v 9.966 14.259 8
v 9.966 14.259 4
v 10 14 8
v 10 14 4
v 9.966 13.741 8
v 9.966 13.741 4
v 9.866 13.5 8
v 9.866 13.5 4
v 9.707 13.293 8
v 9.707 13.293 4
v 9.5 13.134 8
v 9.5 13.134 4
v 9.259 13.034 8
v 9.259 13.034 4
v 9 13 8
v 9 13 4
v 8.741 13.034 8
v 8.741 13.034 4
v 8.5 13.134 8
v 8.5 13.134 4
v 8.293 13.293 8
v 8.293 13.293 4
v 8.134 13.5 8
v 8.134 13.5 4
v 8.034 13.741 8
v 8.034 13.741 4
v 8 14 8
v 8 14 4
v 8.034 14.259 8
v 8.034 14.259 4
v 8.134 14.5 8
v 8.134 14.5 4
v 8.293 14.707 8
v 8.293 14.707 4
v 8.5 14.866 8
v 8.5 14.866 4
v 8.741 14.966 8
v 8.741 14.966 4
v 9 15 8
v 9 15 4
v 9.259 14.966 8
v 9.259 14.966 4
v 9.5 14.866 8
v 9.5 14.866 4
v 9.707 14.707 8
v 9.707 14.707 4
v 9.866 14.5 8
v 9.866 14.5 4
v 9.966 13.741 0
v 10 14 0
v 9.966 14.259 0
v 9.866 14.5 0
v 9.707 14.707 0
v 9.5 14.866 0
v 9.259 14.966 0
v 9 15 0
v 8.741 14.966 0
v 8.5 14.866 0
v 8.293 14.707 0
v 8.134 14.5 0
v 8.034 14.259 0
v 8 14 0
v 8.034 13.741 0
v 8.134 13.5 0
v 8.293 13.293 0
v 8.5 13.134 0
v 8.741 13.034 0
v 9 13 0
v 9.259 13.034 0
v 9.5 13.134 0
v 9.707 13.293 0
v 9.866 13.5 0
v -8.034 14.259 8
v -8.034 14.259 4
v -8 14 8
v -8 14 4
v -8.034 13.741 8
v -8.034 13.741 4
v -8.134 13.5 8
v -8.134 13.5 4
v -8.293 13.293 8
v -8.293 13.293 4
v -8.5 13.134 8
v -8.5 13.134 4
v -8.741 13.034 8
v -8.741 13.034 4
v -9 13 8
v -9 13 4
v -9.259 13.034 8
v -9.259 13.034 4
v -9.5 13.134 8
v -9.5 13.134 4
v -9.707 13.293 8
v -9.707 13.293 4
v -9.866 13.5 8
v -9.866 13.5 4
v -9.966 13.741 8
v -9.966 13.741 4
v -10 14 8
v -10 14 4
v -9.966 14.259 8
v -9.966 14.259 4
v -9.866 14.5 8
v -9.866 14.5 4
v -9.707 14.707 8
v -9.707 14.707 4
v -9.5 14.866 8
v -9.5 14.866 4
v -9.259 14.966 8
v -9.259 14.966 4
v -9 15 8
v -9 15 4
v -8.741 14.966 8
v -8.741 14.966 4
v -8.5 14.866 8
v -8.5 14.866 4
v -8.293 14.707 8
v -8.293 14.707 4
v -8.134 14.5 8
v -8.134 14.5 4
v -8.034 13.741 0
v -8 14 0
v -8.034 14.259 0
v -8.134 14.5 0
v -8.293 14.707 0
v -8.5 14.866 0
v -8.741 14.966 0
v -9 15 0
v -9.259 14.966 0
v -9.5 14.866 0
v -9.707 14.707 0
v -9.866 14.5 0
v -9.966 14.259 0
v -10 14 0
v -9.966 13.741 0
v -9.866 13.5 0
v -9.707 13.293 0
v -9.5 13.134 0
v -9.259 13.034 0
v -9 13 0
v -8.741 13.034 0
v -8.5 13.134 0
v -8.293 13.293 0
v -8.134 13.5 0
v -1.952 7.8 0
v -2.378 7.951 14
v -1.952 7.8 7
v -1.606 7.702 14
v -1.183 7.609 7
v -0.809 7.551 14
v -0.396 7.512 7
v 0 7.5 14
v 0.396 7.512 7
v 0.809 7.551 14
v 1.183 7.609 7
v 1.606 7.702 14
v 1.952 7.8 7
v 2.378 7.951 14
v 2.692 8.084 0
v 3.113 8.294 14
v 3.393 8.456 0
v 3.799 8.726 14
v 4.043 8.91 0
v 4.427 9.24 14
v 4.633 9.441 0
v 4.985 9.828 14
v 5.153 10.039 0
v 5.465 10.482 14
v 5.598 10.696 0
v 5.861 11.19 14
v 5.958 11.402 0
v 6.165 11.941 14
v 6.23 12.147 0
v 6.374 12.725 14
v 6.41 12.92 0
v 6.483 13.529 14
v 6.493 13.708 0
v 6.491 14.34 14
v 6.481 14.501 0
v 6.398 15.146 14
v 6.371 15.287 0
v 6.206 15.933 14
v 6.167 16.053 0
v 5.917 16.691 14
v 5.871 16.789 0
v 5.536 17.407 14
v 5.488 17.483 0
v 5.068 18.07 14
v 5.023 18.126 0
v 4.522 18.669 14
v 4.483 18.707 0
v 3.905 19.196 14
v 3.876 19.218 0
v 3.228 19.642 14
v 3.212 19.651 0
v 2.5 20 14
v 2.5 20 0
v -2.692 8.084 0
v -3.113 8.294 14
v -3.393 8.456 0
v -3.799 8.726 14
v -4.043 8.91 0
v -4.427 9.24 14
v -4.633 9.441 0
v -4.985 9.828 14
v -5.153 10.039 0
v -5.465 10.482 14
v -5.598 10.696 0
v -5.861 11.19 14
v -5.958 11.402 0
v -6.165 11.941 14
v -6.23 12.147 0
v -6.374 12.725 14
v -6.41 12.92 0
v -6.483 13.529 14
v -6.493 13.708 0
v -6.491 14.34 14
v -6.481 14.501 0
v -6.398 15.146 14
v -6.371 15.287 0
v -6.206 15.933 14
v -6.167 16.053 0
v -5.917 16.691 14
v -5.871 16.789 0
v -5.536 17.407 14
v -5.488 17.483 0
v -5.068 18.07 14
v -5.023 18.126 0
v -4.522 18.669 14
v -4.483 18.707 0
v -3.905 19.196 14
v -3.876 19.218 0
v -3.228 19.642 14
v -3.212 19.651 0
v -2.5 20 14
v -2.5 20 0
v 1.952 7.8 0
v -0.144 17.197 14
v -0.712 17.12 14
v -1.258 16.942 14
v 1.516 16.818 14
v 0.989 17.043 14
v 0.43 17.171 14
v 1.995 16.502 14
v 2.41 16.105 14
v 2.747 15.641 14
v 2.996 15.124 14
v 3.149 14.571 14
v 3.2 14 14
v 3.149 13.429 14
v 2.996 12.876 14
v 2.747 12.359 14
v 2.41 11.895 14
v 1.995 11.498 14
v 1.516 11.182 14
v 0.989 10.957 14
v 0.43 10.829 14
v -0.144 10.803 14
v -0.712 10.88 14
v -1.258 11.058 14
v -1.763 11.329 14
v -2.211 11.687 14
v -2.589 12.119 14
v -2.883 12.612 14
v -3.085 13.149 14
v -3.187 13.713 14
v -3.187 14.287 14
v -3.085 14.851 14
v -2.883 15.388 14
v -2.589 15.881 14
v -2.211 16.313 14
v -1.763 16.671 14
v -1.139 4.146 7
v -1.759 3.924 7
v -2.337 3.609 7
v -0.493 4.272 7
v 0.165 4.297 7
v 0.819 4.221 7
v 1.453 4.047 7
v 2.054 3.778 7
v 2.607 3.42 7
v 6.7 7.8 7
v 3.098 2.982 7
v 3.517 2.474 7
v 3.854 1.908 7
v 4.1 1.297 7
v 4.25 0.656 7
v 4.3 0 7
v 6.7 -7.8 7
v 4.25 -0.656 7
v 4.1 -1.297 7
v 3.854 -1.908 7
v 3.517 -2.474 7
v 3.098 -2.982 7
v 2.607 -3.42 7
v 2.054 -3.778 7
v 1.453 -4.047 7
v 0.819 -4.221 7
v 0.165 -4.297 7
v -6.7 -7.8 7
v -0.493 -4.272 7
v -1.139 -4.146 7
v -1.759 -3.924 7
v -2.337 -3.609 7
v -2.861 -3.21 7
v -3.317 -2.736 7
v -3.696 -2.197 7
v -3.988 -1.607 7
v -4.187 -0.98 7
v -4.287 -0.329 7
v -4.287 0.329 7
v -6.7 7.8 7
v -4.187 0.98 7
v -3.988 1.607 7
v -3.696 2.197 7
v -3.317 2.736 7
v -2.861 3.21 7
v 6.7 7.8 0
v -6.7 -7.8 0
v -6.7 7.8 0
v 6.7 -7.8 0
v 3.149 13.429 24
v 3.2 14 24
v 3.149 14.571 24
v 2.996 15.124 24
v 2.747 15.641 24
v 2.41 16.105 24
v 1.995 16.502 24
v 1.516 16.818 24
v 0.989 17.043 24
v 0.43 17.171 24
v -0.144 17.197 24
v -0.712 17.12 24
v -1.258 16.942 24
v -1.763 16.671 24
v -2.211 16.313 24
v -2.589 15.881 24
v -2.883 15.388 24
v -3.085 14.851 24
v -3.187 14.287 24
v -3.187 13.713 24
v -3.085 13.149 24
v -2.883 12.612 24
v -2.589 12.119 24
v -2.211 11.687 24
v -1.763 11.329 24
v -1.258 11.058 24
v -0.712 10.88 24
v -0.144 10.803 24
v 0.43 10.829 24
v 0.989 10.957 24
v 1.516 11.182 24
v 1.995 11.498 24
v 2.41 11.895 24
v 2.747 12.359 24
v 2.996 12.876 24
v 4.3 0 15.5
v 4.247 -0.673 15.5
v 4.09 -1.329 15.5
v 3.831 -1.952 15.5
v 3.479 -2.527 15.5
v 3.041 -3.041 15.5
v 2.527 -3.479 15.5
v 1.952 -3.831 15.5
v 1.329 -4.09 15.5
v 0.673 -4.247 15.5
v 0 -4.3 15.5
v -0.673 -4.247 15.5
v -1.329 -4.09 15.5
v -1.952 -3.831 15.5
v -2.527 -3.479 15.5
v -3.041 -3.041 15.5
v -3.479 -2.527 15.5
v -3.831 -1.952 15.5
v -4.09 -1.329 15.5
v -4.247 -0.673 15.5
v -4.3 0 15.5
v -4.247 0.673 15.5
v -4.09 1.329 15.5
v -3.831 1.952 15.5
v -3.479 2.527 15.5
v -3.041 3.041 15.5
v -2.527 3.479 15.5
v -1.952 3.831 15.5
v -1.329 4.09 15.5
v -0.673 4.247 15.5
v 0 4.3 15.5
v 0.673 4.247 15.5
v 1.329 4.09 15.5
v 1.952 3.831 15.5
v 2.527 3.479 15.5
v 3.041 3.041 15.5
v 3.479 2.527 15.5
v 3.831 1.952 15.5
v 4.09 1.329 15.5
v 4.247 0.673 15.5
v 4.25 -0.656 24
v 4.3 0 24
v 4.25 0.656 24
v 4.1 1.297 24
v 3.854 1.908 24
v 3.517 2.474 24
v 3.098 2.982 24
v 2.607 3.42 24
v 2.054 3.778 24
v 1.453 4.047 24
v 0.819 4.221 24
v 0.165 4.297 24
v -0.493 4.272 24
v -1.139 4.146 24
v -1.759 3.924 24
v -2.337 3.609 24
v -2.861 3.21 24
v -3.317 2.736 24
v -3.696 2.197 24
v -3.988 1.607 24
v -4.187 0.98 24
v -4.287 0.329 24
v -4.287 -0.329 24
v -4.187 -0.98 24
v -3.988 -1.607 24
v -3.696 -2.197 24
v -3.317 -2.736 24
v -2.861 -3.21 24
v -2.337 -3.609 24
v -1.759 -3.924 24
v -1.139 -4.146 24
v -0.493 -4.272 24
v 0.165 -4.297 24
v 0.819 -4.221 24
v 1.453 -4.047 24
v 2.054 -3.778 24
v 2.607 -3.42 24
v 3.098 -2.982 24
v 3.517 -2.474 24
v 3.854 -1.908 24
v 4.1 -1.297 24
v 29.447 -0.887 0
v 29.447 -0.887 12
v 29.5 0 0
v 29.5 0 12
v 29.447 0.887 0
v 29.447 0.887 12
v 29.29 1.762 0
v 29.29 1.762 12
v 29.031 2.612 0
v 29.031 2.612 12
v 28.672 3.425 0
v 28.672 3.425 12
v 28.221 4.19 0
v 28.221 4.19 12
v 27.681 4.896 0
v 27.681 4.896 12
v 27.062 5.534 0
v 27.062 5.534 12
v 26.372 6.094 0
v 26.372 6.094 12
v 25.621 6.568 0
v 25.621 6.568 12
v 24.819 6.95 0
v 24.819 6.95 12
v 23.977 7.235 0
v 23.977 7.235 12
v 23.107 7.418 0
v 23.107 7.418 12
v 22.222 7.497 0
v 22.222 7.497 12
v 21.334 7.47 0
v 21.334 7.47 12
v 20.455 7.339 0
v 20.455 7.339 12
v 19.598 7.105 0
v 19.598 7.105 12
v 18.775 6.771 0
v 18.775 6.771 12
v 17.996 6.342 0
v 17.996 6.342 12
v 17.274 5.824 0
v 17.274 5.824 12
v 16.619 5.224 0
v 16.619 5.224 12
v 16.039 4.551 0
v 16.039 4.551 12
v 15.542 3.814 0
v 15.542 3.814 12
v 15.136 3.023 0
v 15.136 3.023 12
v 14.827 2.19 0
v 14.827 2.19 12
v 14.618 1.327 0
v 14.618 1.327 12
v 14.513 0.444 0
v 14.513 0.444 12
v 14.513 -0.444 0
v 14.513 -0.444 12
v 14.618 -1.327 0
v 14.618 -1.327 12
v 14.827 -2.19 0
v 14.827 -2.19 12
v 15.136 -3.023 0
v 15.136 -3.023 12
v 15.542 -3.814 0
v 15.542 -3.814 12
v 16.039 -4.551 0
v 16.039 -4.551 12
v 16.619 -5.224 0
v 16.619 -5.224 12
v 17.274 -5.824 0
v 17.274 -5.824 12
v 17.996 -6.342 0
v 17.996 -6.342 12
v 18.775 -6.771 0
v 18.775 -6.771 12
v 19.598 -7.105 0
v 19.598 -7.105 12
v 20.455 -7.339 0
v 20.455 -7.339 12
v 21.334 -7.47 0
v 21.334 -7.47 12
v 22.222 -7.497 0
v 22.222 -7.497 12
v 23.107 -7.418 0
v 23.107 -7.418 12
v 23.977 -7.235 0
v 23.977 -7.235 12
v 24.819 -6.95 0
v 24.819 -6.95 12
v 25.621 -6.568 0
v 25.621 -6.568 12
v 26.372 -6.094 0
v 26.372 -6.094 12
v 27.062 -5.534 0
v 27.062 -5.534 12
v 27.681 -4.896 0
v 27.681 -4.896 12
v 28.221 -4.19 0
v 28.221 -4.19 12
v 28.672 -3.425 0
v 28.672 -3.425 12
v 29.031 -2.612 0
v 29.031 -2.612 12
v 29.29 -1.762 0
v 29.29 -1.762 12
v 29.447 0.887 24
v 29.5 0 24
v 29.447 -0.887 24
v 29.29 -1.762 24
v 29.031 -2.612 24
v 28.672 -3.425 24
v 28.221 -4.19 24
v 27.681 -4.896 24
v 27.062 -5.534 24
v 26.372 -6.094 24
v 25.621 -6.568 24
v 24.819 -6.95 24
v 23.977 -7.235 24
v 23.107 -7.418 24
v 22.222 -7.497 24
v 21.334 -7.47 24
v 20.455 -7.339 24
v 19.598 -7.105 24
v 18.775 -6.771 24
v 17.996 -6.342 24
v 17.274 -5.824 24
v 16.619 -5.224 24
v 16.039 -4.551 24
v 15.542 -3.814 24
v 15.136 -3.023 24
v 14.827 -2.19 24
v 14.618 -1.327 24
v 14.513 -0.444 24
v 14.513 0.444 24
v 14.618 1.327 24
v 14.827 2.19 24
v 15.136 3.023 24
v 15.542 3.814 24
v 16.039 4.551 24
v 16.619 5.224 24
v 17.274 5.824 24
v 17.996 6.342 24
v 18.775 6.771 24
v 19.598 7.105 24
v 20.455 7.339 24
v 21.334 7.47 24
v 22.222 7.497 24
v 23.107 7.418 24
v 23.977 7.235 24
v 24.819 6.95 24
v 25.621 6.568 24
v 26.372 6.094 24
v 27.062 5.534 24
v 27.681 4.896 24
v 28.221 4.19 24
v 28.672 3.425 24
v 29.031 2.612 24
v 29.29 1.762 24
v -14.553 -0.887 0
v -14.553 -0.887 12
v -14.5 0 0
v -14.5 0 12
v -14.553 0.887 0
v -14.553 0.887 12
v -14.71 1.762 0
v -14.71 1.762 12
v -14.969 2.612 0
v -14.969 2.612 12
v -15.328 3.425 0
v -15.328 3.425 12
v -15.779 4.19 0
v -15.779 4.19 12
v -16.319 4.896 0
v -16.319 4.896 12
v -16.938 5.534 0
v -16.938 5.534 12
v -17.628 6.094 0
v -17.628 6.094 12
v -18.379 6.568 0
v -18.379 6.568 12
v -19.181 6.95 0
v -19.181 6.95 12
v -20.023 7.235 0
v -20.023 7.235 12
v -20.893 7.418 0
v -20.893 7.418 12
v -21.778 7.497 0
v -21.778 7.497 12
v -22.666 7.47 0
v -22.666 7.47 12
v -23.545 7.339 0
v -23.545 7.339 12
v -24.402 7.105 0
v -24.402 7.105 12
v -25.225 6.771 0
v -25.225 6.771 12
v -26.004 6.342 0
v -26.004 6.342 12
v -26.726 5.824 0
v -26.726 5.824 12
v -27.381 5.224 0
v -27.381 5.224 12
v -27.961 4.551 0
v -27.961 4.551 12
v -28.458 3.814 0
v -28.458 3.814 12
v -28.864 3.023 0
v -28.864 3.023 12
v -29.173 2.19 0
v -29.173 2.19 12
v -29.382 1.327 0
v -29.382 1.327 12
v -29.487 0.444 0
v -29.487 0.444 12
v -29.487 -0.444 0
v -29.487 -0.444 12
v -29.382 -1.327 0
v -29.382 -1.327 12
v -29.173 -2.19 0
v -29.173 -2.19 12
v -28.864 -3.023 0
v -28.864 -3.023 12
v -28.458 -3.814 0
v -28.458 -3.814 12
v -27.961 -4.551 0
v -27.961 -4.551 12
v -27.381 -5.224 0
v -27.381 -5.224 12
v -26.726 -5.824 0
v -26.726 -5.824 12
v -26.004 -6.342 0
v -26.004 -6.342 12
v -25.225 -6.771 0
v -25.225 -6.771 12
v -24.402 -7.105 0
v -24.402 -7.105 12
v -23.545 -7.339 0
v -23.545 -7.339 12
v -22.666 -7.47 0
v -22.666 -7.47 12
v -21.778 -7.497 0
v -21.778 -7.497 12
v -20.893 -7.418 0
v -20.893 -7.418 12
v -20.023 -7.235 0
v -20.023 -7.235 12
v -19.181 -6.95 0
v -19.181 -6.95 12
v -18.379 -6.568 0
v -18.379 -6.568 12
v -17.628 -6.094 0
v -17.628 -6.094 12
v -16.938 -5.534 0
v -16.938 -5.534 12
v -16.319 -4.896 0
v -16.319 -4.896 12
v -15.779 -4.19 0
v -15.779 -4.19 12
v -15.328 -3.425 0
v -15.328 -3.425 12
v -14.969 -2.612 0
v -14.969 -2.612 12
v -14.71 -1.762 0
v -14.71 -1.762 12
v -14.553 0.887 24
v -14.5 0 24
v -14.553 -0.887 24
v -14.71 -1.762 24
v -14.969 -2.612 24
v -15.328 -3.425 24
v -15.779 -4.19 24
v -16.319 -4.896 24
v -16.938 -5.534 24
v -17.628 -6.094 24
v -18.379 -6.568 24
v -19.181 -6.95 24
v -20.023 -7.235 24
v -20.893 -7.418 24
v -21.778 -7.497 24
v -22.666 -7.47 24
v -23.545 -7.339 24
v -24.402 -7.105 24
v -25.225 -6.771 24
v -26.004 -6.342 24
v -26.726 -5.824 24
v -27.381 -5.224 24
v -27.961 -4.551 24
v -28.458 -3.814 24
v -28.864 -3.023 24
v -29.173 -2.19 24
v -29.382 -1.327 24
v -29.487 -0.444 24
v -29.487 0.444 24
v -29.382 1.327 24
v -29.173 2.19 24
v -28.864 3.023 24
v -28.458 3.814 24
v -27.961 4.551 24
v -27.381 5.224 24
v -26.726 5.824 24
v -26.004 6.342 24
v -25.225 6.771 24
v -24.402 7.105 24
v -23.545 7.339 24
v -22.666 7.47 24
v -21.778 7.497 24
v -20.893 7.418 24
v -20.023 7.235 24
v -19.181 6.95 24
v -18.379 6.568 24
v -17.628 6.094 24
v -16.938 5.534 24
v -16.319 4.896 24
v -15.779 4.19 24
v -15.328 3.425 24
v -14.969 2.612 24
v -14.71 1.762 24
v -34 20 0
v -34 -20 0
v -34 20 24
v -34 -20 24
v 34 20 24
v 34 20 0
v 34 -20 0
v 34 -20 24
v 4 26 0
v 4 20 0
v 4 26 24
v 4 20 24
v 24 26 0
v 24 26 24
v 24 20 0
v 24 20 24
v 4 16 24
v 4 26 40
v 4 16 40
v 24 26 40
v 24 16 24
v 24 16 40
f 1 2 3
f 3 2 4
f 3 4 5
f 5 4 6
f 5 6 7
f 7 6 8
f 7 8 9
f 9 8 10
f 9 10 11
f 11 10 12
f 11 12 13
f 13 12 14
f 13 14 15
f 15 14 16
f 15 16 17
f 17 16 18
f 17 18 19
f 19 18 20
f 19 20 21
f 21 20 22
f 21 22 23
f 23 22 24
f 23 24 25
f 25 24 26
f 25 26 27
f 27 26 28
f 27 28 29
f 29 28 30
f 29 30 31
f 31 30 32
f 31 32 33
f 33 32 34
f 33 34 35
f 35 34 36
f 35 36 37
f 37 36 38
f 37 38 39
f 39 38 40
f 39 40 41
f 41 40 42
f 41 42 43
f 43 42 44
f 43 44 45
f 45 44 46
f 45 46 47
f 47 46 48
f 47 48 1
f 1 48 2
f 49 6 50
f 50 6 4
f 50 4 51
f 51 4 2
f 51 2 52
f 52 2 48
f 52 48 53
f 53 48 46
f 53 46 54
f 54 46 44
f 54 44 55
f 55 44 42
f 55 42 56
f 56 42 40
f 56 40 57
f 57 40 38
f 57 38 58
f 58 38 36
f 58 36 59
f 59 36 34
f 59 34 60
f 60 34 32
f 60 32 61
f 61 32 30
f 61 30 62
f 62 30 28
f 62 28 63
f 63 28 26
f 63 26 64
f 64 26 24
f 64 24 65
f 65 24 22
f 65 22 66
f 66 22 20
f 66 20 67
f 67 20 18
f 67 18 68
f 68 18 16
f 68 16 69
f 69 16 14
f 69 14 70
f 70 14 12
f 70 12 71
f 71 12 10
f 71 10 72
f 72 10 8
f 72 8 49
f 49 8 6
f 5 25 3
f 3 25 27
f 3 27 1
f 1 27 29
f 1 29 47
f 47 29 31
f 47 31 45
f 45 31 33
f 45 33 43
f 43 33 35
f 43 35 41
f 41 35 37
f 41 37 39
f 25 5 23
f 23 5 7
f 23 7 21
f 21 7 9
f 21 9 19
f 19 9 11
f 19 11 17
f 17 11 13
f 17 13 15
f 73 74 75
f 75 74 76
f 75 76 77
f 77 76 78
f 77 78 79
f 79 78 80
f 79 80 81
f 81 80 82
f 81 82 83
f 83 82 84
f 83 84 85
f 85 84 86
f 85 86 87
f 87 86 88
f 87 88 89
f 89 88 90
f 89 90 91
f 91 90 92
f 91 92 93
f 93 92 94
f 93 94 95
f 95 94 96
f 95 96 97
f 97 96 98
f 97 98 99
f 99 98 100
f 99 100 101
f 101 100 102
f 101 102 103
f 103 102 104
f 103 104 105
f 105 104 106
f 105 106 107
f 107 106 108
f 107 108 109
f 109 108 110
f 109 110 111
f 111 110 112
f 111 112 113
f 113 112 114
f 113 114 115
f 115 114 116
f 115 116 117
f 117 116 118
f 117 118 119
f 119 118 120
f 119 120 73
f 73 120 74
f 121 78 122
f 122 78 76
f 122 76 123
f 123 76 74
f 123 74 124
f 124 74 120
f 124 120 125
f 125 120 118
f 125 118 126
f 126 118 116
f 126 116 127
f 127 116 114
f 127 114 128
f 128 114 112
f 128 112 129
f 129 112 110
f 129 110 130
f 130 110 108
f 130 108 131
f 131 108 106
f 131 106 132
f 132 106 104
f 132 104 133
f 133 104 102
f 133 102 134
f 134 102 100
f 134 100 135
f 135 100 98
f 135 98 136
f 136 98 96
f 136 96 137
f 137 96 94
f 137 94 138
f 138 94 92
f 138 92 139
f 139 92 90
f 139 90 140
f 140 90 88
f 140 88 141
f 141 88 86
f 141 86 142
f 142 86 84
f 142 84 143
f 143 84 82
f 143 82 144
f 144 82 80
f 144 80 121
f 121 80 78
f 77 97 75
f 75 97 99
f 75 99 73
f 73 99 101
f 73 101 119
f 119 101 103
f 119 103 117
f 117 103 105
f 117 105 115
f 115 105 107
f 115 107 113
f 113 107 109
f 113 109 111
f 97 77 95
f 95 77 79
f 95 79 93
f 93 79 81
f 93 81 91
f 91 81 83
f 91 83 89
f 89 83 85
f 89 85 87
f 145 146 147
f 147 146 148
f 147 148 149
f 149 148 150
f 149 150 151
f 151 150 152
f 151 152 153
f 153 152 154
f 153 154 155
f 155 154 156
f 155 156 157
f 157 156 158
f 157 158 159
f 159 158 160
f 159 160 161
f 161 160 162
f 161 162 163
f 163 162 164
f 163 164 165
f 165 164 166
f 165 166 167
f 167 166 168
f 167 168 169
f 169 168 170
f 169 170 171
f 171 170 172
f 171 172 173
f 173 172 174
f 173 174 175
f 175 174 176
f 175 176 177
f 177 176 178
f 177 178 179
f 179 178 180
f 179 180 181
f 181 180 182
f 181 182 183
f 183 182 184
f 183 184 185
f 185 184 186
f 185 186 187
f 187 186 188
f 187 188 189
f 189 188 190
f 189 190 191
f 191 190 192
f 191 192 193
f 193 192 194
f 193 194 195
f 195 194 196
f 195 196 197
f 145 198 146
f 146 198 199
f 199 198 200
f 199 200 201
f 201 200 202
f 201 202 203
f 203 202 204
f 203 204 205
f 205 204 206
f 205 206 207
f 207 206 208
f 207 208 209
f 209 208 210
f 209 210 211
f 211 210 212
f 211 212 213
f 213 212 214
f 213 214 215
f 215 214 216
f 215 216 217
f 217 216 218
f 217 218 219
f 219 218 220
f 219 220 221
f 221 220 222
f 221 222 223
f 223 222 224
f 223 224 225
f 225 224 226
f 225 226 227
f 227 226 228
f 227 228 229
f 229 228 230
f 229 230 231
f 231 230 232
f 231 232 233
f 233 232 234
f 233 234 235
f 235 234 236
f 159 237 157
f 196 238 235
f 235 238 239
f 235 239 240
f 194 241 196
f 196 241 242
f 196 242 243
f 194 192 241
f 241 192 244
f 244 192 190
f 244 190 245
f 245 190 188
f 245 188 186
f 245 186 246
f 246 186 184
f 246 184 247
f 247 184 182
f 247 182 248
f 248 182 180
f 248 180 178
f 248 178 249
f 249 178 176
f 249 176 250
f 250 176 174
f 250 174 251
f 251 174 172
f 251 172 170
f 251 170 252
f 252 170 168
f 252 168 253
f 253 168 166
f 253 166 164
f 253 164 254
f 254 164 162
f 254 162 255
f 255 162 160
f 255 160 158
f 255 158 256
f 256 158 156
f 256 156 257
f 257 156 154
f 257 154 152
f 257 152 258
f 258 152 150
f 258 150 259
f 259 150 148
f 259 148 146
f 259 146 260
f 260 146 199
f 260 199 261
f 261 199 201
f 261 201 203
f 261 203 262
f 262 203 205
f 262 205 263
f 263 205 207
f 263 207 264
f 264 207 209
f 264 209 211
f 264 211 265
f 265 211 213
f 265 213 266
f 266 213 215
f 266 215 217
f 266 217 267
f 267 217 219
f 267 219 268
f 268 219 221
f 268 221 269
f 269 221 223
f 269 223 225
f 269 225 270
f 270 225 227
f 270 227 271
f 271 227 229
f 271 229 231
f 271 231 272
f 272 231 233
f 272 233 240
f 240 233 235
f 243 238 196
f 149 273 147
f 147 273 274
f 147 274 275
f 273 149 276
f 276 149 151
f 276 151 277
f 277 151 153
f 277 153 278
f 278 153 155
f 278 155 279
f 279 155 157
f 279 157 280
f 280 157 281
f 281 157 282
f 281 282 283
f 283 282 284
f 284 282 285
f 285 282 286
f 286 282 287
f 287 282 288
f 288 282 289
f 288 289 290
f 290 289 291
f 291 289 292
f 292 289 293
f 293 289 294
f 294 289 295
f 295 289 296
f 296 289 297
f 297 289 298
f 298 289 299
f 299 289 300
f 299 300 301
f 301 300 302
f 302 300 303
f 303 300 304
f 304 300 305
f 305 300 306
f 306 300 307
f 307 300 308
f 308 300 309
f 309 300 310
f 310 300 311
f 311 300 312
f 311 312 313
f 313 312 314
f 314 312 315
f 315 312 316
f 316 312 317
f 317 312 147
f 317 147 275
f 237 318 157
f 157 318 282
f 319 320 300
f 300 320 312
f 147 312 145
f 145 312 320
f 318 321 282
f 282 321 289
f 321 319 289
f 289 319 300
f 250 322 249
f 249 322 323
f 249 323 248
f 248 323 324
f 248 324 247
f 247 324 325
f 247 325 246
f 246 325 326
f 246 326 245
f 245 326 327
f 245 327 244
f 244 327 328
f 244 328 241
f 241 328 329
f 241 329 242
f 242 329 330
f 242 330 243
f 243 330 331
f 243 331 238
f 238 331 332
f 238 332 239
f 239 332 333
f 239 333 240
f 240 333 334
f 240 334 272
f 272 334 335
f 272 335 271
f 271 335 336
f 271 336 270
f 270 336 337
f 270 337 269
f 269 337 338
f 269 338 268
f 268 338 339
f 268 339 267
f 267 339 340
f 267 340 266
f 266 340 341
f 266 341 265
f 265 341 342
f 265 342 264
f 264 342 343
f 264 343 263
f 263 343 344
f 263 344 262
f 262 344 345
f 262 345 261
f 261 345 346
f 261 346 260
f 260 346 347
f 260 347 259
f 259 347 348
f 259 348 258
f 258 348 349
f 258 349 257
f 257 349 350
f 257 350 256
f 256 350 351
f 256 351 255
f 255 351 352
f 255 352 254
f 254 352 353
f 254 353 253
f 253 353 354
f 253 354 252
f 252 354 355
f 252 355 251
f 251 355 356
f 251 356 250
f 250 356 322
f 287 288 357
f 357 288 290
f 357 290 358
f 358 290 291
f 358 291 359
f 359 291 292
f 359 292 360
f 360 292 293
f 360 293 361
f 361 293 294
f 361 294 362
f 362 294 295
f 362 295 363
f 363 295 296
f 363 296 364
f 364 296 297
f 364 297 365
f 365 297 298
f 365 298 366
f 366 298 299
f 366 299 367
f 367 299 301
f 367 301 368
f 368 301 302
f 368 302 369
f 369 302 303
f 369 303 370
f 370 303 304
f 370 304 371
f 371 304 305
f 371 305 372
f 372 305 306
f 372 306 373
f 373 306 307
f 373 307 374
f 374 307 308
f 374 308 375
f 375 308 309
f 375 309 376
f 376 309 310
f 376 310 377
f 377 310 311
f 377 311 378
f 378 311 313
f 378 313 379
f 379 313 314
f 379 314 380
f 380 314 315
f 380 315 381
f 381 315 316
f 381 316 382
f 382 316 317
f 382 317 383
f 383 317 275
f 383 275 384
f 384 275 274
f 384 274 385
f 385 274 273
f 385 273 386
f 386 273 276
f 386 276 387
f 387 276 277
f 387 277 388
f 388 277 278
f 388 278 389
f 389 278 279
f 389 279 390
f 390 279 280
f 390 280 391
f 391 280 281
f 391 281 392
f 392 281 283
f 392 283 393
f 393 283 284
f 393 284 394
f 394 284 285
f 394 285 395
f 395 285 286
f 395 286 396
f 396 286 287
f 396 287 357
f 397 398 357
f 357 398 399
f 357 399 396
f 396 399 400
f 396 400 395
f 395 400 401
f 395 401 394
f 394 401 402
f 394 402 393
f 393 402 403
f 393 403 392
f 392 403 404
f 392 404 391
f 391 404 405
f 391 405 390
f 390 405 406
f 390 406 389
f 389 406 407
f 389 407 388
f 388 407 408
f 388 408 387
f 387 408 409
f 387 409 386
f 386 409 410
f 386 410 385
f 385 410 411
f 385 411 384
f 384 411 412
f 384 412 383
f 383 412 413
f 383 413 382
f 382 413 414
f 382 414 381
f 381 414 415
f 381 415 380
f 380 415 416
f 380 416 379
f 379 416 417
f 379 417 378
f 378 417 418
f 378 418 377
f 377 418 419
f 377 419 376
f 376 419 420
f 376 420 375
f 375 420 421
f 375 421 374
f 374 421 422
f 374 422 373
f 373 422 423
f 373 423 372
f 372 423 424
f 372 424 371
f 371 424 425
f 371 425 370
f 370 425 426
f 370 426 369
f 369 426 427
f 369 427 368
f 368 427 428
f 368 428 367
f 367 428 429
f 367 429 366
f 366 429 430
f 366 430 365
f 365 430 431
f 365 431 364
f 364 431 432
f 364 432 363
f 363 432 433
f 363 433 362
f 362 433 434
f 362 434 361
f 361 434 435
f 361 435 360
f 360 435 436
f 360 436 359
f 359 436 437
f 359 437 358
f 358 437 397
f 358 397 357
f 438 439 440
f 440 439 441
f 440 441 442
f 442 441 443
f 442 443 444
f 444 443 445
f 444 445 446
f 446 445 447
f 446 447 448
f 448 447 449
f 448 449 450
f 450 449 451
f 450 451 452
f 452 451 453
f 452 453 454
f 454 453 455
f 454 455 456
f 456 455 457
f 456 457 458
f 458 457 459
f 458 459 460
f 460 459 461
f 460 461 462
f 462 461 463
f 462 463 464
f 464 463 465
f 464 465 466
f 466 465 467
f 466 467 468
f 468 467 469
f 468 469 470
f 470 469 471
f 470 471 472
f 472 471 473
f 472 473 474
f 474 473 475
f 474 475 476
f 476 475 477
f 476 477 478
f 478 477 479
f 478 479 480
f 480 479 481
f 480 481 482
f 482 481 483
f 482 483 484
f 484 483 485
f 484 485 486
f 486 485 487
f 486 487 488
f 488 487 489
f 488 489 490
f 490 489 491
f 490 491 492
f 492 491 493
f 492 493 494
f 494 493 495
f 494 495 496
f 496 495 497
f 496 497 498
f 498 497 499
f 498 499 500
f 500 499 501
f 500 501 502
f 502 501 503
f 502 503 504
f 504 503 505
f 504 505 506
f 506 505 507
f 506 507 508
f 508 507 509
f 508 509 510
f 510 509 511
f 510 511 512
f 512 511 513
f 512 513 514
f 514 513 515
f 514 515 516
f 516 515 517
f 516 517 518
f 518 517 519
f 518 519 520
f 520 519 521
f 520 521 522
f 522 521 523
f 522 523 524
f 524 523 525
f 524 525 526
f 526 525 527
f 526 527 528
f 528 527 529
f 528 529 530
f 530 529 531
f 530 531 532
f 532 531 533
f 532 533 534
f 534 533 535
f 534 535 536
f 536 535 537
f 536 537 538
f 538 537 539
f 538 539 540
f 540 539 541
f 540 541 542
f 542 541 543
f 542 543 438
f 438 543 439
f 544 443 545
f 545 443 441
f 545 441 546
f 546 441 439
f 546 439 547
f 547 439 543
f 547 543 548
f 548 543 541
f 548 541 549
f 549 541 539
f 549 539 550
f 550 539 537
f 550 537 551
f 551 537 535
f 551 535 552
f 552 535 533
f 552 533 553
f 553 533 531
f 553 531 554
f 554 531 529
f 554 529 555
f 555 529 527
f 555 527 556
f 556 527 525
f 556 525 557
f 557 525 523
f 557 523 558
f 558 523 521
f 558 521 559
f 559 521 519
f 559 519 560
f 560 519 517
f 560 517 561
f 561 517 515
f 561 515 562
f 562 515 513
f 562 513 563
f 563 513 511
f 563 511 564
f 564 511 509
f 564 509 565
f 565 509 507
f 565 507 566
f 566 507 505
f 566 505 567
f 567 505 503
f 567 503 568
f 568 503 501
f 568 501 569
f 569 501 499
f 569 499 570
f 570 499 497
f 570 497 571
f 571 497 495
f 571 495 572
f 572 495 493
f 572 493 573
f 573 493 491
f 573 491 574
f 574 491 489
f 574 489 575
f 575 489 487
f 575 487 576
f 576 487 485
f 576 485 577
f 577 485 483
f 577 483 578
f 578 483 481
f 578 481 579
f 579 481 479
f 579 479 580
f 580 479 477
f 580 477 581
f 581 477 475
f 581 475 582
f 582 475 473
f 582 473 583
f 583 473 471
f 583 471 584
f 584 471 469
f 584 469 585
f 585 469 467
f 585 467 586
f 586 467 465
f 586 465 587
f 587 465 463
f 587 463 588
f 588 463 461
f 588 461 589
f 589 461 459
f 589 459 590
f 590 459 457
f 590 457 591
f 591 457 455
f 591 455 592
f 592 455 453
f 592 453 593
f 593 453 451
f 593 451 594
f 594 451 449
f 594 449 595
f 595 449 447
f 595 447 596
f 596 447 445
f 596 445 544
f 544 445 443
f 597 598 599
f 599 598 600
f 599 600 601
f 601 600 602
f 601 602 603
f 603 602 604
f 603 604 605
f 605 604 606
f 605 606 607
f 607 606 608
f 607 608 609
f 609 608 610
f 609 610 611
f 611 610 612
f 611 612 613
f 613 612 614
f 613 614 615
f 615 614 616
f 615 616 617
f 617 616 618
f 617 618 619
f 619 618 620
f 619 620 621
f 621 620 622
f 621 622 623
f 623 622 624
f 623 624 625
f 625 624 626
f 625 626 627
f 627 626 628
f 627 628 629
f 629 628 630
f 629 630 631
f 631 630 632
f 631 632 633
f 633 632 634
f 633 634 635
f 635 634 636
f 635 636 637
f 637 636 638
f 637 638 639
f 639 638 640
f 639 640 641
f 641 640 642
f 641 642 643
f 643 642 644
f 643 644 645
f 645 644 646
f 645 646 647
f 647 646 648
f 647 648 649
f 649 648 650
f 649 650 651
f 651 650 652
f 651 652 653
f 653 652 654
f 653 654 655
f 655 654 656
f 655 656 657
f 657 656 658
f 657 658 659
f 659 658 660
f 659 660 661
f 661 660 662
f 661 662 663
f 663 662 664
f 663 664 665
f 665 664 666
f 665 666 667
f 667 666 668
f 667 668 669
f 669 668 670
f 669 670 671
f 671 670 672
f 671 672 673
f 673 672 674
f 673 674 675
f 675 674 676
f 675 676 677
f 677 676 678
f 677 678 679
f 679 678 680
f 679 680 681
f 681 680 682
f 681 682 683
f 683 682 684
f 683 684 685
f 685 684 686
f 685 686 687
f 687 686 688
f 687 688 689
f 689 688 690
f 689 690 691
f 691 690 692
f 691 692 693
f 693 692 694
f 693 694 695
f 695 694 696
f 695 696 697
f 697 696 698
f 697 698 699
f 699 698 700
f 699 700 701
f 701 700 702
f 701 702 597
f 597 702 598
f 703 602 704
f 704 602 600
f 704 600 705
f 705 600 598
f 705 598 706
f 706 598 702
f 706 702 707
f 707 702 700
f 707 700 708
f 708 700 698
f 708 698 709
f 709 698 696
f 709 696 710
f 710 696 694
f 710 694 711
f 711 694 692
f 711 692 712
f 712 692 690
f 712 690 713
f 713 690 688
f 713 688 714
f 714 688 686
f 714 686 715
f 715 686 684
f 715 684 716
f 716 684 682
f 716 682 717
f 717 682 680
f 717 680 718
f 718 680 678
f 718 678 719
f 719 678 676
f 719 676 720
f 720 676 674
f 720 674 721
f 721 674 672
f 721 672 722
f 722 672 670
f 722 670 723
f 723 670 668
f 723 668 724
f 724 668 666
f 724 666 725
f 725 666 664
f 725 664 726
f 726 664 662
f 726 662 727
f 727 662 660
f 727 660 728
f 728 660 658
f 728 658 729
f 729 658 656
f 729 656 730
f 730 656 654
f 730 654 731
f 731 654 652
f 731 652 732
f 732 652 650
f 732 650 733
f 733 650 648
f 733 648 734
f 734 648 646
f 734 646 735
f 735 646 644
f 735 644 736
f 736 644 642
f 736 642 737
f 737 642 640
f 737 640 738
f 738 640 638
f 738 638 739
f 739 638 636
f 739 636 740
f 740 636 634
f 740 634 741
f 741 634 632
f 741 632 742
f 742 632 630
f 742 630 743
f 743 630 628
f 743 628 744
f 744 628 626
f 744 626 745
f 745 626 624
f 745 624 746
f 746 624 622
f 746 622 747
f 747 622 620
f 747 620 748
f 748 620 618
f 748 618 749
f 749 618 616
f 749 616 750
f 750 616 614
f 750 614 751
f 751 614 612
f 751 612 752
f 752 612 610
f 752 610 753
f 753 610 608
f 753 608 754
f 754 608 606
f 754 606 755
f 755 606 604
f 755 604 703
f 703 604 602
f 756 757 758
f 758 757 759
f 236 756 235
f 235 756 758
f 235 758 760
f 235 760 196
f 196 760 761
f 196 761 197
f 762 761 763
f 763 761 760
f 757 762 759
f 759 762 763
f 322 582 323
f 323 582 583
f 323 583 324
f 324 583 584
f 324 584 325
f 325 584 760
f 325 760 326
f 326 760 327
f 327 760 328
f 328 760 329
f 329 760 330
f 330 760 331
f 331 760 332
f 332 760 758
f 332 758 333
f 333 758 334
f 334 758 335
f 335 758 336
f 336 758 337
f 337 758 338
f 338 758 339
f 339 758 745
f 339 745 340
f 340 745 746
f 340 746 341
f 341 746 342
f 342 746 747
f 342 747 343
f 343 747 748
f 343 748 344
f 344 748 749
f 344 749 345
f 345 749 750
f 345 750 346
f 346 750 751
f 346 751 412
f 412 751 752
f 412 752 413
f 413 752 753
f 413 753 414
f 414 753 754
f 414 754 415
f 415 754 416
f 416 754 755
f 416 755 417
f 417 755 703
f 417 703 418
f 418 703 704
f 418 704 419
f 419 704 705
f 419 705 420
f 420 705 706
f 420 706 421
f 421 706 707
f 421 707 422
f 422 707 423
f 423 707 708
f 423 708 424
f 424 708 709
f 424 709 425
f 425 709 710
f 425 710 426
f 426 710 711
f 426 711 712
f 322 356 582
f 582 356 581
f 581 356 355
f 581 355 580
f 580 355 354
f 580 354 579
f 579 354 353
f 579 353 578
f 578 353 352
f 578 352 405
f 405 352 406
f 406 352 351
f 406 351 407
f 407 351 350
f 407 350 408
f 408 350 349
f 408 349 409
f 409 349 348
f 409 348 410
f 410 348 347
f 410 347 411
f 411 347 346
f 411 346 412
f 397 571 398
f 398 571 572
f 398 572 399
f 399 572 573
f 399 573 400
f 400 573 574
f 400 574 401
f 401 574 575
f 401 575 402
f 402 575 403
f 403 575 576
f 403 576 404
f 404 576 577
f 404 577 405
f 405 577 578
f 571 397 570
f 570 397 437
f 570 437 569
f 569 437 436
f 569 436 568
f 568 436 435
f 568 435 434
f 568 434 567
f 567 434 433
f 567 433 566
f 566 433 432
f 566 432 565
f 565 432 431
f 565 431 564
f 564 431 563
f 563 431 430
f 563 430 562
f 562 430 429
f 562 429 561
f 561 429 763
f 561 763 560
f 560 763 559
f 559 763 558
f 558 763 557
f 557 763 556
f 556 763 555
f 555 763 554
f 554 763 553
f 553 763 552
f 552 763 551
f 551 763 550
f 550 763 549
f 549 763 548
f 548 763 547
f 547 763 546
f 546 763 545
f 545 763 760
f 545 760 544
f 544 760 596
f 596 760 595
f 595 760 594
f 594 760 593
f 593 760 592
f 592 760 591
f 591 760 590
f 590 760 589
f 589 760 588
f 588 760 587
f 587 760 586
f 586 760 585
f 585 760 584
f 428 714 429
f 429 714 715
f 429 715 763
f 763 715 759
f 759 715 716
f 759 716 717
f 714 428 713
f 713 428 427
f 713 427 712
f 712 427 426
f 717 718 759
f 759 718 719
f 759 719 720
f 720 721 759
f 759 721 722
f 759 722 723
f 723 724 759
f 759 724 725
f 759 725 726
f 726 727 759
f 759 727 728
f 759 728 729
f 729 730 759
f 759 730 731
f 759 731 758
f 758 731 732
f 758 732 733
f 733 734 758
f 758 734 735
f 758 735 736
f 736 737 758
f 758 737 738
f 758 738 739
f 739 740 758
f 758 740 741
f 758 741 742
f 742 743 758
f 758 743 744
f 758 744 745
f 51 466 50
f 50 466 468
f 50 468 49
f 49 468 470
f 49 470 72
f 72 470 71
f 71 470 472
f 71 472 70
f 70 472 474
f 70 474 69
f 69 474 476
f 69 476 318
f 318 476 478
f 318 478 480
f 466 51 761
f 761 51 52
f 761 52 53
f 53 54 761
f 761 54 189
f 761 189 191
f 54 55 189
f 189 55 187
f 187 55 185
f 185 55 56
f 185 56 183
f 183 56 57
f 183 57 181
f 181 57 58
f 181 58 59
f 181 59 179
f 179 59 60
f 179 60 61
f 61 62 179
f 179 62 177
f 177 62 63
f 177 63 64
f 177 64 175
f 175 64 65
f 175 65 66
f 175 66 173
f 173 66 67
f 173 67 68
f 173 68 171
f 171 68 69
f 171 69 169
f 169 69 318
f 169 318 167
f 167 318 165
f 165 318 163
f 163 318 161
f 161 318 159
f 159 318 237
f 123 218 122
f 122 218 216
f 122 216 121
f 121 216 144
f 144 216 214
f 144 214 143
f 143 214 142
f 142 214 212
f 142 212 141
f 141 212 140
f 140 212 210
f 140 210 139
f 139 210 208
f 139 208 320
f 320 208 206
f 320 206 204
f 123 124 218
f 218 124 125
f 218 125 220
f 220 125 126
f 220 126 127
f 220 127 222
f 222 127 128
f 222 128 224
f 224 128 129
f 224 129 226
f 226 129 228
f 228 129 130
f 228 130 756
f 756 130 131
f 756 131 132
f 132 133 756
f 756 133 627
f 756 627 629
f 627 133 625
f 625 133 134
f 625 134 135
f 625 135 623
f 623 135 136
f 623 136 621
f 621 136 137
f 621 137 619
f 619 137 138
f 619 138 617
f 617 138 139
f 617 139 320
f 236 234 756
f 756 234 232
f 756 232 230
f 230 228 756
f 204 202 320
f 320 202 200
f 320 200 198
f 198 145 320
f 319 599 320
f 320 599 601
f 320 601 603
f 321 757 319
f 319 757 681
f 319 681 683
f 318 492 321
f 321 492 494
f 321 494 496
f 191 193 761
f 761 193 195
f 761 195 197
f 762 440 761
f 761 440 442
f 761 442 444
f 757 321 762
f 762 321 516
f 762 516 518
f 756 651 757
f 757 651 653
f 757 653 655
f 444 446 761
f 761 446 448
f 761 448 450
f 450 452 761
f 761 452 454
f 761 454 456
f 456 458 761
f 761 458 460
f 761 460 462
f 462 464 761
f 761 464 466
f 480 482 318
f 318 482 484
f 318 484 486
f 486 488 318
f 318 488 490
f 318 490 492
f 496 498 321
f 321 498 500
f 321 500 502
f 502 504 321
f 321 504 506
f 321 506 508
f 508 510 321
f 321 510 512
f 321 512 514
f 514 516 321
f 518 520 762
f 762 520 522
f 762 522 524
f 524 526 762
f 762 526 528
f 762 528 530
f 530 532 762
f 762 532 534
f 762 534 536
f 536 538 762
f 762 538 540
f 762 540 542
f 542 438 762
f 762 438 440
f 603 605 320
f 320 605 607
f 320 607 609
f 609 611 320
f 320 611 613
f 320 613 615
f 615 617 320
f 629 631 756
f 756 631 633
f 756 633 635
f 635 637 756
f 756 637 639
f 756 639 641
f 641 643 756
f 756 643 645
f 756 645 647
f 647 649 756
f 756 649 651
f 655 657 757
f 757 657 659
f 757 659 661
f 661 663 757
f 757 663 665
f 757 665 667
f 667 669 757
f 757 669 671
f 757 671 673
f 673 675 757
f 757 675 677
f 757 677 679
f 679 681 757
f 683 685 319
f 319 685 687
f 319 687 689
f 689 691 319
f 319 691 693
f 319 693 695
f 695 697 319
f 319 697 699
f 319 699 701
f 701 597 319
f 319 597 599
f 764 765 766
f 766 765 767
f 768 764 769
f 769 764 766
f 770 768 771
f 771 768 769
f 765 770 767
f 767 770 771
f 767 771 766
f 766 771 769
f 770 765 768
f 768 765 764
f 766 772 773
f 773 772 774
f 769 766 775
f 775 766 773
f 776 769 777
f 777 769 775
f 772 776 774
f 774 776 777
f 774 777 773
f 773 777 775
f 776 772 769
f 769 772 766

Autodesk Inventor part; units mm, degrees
ref_plane "YZ Plane" through (0, 0, 0) normal (1, 0, 0) x (0, 1, 0)
sketch "Skizze1" plane through (0, 0, 0) normal (0, 0, 1) x (1, 0, 0)
  line L0 (-34, -20) -> (34, -20)
  line L1 (34, -20) -> (34, 20)
  line L2 (34, 20) -> (-34, 20)
  line L3 (-34, 20) -> (-34, -20)
extrude "Extrusion1" add sketch "Skizze1" along normal blind 24
sketch "Skizze2" plane through (0, 0, 0) normal (0, 0, 1) x (1, 0, 0)
  line L0 (4, 20) -> (24, 20)
  line L1 (24, 20) -> (24, 26)
  line L2 (24, 26) -> (4, 26)
  line L3 (4, 26) -> (4, 20)
extrude "Extrusion2" add sketch "Skizze2" along normal blind 24 separate body
ref_plane "Arbeitsebene1" through (0, 0, 24) normal (0, 0, 1) x (1, 0, 0)
sketch "Skizze3" plane through (0, 0, 24) normal (0, 0, 1) x (1, 0, 0)
  line L0 (4, 16) -> (24, 16)
  line L1 (24, 16) -> (24, 26)
  line L2 (24, 26) -> (4, 26)
  line L3 (4, 26) -> (4, 16)
extrude "Extrusion3" add sketch "Skizze3" along normal blind 16 separate body
sketch "Skizze4" plane through (0, 0, 24) normal (0, 0, 1) x (1, 0, 0)
  circle A0 centre (-22, 0) radius 7.5
extrude "Extrusion4" cut sketch "Skizze4" against normal blind 24.2 bodies 1
sketch "Skizze5" plane through (0, 0, 24) normal (0, 0, 1) x (1, 0, 0)
  circle A0 centre (22, 0) radius 7.5
extrude "Extrusion5" cut sketch "Skizze5" against normal blind 24.2 bodies 1
sketch "Skizze6" plane through (0, 0, 24) normal (0, 0, 1) x (1, 0, 0)
  circle A0 centre (0, 0) radius 4.3
extrude "Extrusion6" cut sketch "Skizze6" against normal blind 24.2 bodies 1
sketch "Skizze7" plane through (0, 0, 24) normal (0, 0, 1) x (1, 0, 0)
  circle A0 centre (0, 14) radius 3.2
extrude "Extrusion7" cut sketch "Skizze7" against normal blind 24.2 bodies 1
sketch "Skizze8" plane through (0, 0, 0) normal (0, 0, 1) x (1, 0, 0)
  line L0 (-6.7, -7.8) -> (6.7, -7.8)
  line L1 (6.7, -7.8) -> (6.7, 7.8)
  line L2 (6.7, 7.8) -> (-6.7, 7.8)
  line L3 (-6.7, 7.8) -> (-6.7, -7.8)
extrude "Extrusion8" cut sketch "Skizze8" along normal blind 7 bodies 1
sketch "Skizze9" plane through (0, 0, 0) normal (0, 0, 1) x (1, 0, 0)
  circle A0 centre (0, 14) radius 6.5
extrude "Extrusion9" cut sketch "Skizze9" along normal blind 14 bodies 1
sketch "Skizze10" plane through (0, 0, 0) normal (0, 0, 1) x (1, 0, 0)
  circle A0 centre (-9, 14) radius 1
extrude "Extrusion10" cut sketch "Skizze10" along normal blind 8 bodies 1
sketch "Skizze11" plane through (0, 0, 0) normal (0, 0, 1) x (1, 0, 0)
  circle A0 centre (9, 14) radius 1
extrude "Extrusion11" cut sketch "Skizze11" along normal blind 8 bodies 1
ref_plane "Arbeitsebene2" through (0, 16, 0) normal (0, 1, 0) x (-1, 0, 0)
sketch "Skizze12" plane through (0, 16, 0) normal (0, 1, 0) x (-1, 0, 0)
  circle A0 centre (9, 34) radius 1.2
extrude "Extrusion12" cut sketch "Skizze12" along normal blind 10.2 bodies 1
sketch "Skizze13" plane through (0, 16, 0) normal (0, 1, 0) x (-1, 0, 0)
  circle A0 centre (18.5, 34) radius 1.2
extrude "Extrusion13" cut sketch "Skizze13" along normal blind 10.2 bodies 1
properties part number "Taster_Schlitten_M8"
